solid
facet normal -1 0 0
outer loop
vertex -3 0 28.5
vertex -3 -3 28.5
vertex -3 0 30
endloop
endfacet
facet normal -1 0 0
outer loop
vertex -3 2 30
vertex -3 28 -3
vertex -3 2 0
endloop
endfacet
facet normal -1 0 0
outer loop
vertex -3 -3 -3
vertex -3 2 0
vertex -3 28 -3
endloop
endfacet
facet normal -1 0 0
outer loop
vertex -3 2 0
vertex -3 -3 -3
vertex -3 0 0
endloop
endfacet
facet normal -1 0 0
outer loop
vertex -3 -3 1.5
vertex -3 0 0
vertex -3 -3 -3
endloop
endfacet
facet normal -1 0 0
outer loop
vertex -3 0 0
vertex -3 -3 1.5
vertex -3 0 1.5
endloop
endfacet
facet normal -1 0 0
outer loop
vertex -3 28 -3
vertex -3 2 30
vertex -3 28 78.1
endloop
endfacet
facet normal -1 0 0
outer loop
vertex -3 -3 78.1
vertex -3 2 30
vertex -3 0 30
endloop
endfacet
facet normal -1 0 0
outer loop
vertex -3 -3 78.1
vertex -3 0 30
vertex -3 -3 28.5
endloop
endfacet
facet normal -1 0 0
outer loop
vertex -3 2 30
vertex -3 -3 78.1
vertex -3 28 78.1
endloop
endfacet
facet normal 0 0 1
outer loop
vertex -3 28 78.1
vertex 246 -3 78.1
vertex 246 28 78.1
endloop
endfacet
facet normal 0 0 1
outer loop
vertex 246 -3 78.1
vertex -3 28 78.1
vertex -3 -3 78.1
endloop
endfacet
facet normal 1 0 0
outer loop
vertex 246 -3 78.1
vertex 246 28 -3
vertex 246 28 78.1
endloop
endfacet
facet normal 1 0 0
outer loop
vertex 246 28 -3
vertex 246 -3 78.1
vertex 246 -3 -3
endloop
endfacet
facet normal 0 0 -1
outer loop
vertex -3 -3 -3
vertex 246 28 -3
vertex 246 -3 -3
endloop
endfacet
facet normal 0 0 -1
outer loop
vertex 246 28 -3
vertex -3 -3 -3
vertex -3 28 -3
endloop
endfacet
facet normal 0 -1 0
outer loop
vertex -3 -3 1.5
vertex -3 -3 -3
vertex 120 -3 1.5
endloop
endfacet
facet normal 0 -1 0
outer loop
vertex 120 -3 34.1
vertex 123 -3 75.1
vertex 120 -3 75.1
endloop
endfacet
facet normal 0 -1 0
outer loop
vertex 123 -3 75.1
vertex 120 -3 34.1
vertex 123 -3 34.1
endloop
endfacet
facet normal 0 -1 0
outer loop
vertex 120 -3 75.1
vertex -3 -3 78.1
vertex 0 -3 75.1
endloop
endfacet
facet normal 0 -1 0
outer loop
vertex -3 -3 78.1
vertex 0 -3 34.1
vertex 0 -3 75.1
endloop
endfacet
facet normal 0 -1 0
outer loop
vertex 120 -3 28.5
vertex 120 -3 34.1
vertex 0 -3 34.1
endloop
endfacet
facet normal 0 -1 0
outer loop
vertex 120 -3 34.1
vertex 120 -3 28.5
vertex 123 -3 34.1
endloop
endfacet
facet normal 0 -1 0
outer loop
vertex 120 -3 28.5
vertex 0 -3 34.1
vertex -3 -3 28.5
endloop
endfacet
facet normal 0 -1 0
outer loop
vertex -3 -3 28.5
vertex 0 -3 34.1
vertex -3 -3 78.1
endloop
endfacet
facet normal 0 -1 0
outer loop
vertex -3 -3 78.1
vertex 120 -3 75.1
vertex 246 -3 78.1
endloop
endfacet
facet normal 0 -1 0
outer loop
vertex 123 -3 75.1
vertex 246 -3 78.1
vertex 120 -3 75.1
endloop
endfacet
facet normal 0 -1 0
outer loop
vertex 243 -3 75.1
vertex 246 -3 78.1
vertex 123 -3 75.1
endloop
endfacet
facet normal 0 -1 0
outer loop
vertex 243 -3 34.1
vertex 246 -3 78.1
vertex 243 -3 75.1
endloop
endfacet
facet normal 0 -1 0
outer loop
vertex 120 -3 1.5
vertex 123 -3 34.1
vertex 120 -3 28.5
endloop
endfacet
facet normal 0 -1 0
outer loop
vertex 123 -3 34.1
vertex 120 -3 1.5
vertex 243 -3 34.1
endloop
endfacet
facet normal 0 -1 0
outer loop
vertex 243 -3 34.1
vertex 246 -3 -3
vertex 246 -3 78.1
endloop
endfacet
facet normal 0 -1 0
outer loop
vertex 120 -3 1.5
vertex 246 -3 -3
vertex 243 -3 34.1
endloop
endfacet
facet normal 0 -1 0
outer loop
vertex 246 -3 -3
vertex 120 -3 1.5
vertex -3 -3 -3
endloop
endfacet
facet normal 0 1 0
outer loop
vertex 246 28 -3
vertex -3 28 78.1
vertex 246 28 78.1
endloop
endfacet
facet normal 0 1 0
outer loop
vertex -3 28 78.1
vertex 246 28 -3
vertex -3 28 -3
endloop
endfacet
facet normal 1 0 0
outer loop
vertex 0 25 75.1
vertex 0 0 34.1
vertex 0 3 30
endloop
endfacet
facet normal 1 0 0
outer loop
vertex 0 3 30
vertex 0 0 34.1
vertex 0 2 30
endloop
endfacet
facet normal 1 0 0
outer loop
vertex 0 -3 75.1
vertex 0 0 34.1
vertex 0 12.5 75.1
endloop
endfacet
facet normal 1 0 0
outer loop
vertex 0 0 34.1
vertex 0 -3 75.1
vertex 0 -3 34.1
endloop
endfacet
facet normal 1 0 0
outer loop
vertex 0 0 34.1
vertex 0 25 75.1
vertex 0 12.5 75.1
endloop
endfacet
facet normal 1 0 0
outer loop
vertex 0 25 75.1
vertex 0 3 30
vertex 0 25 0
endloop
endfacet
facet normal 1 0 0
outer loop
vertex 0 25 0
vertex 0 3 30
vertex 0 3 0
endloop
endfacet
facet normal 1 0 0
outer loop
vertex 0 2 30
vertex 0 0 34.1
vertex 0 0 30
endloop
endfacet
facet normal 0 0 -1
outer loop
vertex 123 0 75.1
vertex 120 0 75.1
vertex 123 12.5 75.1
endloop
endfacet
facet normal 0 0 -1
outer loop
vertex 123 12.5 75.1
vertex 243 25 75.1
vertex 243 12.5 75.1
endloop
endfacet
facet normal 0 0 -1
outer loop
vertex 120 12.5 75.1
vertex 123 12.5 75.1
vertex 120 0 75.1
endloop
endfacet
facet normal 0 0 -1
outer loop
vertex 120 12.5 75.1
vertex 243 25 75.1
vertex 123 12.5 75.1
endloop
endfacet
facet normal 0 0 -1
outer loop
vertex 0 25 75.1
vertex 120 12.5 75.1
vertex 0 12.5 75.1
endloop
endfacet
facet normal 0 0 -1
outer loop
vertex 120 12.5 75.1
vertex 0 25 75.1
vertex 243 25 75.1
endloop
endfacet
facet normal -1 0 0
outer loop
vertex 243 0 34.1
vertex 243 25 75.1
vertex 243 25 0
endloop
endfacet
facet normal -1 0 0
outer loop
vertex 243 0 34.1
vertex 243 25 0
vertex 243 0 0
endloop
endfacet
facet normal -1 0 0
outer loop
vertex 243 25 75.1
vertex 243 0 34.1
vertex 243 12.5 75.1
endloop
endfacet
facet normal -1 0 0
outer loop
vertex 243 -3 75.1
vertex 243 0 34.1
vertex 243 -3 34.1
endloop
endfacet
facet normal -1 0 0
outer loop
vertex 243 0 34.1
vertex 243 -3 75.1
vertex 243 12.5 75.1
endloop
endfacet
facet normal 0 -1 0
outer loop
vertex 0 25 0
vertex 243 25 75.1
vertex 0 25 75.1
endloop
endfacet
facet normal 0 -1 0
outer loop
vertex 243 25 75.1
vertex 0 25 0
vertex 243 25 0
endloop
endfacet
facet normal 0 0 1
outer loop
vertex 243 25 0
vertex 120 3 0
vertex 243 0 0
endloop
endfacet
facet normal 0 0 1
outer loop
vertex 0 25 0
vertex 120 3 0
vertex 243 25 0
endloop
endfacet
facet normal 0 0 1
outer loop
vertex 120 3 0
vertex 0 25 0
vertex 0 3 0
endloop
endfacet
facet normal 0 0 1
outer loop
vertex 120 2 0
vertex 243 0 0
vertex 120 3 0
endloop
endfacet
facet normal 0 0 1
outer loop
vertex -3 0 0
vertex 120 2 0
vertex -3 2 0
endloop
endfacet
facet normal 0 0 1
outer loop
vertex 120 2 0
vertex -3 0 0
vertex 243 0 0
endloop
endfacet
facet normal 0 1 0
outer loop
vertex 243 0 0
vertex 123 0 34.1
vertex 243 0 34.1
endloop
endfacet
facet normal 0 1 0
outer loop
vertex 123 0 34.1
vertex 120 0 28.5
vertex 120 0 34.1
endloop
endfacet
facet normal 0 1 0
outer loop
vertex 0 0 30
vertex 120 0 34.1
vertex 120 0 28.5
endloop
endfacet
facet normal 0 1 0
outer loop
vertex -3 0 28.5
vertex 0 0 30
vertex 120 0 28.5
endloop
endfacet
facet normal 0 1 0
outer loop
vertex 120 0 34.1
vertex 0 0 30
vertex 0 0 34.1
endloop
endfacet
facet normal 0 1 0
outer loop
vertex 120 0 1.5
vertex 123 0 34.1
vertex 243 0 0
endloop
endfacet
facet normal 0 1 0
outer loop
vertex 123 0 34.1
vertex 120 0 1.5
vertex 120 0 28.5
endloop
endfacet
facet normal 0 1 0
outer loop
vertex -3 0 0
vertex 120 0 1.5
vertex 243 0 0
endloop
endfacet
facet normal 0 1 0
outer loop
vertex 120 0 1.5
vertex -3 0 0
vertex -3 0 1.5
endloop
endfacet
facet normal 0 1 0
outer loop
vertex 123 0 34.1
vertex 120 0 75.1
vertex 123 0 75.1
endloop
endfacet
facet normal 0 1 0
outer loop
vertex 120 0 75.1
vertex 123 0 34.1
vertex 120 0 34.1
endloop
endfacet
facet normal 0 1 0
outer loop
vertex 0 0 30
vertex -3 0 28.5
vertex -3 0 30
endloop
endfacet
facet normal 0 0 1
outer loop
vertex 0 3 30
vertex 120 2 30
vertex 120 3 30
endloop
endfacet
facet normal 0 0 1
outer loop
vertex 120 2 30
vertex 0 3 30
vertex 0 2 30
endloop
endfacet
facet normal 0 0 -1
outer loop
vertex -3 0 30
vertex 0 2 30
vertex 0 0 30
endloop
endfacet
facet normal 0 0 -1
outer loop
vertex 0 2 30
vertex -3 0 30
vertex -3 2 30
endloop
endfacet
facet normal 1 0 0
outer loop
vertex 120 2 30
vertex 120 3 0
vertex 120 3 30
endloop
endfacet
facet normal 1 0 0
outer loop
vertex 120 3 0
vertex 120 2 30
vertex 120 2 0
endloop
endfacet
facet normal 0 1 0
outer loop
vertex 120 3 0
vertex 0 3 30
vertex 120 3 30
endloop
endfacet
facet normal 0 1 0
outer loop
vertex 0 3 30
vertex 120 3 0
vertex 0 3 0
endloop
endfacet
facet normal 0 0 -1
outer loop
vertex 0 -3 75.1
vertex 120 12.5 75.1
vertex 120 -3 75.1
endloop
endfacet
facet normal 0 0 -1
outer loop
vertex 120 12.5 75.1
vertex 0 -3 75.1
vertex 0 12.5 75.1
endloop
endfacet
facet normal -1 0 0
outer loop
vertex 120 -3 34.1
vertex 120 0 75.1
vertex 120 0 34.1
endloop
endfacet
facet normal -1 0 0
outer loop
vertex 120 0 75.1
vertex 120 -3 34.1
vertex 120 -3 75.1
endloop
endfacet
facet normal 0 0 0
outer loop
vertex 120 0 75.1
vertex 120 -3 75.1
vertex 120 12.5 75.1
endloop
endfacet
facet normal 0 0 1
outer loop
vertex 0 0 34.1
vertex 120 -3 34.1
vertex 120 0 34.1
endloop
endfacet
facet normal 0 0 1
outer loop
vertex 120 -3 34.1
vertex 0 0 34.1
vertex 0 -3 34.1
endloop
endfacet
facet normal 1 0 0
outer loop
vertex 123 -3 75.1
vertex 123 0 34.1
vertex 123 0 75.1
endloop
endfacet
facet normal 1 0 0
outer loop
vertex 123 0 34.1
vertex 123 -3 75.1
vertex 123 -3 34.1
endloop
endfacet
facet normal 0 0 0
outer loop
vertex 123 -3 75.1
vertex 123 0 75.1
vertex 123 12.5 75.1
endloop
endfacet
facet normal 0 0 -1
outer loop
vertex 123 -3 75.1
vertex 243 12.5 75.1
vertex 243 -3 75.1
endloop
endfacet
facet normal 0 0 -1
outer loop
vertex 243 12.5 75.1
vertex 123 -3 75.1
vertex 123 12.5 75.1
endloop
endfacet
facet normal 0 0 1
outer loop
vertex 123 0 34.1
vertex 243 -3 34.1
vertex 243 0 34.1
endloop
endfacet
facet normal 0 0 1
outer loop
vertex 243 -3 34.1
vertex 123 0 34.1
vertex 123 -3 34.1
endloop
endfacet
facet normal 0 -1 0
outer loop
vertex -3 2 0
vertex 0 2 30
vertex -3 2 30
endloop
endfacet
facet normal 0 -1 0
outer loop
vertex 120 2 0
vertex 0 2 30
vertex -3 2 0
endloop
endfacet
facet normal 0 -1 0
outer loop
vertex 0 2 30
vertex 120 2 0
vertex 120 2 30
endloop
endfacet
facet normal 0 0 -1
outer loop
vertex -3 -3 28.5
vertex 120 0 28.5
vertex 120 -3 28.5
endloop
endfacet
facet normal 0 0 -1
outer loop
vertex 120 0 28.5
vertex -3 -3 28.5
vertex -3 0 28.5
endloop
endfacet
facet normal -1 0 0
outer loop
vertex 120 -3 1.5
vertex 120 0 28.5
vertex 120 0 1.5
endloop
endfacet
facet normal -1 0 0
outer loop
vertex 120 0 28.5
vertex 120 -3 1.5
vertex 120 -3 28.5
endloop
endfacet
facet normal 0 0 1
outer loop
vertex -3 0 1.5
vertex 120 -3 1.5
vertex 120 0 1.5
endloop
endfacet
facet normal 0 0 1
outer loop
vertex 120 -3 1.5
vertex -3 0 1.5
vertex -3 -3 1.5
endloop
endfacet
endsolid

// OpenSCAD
displayWidth = 120;
displayHeight = 41;
displayDepth = 5;
displaySpacing = 3;

labelSlotWidth = displayWidth;
labelSlotHeight = 30;
labelSlotDepth = 2;

enclosureInsideWidth = (displayWidth * 2) + displaySpacing;
enclosureInsideHeight = displayHeight * 1.1 + labelSlotHeight;
enclosureInsideDepth = 25;
enclosureThickness = 3;

module sevenSegDisplay() {
	cube([displayWidth, displayDepth, displayHeight]);
}

module combinedSevenSegDisplay() {
	sevenSegDisplay();
	translate([displayWidth + displaySpacing, 0, 0])
	sevenSegDisplay();
}

module enclosure() {
	difference() {
		// Outside
		translate([-enclosureThickness, -enclosureThickness, -enclosureThickness])
		cube([
			enclosureInsideWidth + (enclosureThickness * 2),
			enclosureInsideDepth + (enclosureThickness * 2),
			enclosureInsideHeight + (enclosureThickness * 2)
		]);
		
		// Inside
		cube([enclosureInsideWidth, enclosureInsideDepth, enclosureInsideHeight]);
	}
}

module labelBackground() {
	translate([0, -enclosureThickness, 0])
		cube([
			labelSlotWidth,
			labelSlotDepth * 3,
			labelSlotHeight
		]);
}

module labelSlot() {
	translate([-5, 0, 0])
		cube([
			labelSlotWidth + 5,
			labelSlotDepth,
			labelSlotHeight
		]);
}

module labelSlotCutOut() {
	height = labelSlotHeight * 0.9;

	translate([-5, -(labelSlotDepth * 4.5), (labelSlotHeight - height) / 2])
		cube([
			labelSlotWidth + 5,
			labelSlotDepth * 5,
			height
		]);
}

module entireClosure() {
	difference() {
		difference() {
			difference() {
				union() {
					enclosure();
					labelBackground();
				}

				translate([0, -(displayDepth * 2.5), enclosureInsideHeight - displayHeight])
				scale([1, 5, 1])
				combinedSevenSegDisplay();
			}

			labelSlot();
		}

		labelSlotCutOut();
	}
}

entireClosure();
